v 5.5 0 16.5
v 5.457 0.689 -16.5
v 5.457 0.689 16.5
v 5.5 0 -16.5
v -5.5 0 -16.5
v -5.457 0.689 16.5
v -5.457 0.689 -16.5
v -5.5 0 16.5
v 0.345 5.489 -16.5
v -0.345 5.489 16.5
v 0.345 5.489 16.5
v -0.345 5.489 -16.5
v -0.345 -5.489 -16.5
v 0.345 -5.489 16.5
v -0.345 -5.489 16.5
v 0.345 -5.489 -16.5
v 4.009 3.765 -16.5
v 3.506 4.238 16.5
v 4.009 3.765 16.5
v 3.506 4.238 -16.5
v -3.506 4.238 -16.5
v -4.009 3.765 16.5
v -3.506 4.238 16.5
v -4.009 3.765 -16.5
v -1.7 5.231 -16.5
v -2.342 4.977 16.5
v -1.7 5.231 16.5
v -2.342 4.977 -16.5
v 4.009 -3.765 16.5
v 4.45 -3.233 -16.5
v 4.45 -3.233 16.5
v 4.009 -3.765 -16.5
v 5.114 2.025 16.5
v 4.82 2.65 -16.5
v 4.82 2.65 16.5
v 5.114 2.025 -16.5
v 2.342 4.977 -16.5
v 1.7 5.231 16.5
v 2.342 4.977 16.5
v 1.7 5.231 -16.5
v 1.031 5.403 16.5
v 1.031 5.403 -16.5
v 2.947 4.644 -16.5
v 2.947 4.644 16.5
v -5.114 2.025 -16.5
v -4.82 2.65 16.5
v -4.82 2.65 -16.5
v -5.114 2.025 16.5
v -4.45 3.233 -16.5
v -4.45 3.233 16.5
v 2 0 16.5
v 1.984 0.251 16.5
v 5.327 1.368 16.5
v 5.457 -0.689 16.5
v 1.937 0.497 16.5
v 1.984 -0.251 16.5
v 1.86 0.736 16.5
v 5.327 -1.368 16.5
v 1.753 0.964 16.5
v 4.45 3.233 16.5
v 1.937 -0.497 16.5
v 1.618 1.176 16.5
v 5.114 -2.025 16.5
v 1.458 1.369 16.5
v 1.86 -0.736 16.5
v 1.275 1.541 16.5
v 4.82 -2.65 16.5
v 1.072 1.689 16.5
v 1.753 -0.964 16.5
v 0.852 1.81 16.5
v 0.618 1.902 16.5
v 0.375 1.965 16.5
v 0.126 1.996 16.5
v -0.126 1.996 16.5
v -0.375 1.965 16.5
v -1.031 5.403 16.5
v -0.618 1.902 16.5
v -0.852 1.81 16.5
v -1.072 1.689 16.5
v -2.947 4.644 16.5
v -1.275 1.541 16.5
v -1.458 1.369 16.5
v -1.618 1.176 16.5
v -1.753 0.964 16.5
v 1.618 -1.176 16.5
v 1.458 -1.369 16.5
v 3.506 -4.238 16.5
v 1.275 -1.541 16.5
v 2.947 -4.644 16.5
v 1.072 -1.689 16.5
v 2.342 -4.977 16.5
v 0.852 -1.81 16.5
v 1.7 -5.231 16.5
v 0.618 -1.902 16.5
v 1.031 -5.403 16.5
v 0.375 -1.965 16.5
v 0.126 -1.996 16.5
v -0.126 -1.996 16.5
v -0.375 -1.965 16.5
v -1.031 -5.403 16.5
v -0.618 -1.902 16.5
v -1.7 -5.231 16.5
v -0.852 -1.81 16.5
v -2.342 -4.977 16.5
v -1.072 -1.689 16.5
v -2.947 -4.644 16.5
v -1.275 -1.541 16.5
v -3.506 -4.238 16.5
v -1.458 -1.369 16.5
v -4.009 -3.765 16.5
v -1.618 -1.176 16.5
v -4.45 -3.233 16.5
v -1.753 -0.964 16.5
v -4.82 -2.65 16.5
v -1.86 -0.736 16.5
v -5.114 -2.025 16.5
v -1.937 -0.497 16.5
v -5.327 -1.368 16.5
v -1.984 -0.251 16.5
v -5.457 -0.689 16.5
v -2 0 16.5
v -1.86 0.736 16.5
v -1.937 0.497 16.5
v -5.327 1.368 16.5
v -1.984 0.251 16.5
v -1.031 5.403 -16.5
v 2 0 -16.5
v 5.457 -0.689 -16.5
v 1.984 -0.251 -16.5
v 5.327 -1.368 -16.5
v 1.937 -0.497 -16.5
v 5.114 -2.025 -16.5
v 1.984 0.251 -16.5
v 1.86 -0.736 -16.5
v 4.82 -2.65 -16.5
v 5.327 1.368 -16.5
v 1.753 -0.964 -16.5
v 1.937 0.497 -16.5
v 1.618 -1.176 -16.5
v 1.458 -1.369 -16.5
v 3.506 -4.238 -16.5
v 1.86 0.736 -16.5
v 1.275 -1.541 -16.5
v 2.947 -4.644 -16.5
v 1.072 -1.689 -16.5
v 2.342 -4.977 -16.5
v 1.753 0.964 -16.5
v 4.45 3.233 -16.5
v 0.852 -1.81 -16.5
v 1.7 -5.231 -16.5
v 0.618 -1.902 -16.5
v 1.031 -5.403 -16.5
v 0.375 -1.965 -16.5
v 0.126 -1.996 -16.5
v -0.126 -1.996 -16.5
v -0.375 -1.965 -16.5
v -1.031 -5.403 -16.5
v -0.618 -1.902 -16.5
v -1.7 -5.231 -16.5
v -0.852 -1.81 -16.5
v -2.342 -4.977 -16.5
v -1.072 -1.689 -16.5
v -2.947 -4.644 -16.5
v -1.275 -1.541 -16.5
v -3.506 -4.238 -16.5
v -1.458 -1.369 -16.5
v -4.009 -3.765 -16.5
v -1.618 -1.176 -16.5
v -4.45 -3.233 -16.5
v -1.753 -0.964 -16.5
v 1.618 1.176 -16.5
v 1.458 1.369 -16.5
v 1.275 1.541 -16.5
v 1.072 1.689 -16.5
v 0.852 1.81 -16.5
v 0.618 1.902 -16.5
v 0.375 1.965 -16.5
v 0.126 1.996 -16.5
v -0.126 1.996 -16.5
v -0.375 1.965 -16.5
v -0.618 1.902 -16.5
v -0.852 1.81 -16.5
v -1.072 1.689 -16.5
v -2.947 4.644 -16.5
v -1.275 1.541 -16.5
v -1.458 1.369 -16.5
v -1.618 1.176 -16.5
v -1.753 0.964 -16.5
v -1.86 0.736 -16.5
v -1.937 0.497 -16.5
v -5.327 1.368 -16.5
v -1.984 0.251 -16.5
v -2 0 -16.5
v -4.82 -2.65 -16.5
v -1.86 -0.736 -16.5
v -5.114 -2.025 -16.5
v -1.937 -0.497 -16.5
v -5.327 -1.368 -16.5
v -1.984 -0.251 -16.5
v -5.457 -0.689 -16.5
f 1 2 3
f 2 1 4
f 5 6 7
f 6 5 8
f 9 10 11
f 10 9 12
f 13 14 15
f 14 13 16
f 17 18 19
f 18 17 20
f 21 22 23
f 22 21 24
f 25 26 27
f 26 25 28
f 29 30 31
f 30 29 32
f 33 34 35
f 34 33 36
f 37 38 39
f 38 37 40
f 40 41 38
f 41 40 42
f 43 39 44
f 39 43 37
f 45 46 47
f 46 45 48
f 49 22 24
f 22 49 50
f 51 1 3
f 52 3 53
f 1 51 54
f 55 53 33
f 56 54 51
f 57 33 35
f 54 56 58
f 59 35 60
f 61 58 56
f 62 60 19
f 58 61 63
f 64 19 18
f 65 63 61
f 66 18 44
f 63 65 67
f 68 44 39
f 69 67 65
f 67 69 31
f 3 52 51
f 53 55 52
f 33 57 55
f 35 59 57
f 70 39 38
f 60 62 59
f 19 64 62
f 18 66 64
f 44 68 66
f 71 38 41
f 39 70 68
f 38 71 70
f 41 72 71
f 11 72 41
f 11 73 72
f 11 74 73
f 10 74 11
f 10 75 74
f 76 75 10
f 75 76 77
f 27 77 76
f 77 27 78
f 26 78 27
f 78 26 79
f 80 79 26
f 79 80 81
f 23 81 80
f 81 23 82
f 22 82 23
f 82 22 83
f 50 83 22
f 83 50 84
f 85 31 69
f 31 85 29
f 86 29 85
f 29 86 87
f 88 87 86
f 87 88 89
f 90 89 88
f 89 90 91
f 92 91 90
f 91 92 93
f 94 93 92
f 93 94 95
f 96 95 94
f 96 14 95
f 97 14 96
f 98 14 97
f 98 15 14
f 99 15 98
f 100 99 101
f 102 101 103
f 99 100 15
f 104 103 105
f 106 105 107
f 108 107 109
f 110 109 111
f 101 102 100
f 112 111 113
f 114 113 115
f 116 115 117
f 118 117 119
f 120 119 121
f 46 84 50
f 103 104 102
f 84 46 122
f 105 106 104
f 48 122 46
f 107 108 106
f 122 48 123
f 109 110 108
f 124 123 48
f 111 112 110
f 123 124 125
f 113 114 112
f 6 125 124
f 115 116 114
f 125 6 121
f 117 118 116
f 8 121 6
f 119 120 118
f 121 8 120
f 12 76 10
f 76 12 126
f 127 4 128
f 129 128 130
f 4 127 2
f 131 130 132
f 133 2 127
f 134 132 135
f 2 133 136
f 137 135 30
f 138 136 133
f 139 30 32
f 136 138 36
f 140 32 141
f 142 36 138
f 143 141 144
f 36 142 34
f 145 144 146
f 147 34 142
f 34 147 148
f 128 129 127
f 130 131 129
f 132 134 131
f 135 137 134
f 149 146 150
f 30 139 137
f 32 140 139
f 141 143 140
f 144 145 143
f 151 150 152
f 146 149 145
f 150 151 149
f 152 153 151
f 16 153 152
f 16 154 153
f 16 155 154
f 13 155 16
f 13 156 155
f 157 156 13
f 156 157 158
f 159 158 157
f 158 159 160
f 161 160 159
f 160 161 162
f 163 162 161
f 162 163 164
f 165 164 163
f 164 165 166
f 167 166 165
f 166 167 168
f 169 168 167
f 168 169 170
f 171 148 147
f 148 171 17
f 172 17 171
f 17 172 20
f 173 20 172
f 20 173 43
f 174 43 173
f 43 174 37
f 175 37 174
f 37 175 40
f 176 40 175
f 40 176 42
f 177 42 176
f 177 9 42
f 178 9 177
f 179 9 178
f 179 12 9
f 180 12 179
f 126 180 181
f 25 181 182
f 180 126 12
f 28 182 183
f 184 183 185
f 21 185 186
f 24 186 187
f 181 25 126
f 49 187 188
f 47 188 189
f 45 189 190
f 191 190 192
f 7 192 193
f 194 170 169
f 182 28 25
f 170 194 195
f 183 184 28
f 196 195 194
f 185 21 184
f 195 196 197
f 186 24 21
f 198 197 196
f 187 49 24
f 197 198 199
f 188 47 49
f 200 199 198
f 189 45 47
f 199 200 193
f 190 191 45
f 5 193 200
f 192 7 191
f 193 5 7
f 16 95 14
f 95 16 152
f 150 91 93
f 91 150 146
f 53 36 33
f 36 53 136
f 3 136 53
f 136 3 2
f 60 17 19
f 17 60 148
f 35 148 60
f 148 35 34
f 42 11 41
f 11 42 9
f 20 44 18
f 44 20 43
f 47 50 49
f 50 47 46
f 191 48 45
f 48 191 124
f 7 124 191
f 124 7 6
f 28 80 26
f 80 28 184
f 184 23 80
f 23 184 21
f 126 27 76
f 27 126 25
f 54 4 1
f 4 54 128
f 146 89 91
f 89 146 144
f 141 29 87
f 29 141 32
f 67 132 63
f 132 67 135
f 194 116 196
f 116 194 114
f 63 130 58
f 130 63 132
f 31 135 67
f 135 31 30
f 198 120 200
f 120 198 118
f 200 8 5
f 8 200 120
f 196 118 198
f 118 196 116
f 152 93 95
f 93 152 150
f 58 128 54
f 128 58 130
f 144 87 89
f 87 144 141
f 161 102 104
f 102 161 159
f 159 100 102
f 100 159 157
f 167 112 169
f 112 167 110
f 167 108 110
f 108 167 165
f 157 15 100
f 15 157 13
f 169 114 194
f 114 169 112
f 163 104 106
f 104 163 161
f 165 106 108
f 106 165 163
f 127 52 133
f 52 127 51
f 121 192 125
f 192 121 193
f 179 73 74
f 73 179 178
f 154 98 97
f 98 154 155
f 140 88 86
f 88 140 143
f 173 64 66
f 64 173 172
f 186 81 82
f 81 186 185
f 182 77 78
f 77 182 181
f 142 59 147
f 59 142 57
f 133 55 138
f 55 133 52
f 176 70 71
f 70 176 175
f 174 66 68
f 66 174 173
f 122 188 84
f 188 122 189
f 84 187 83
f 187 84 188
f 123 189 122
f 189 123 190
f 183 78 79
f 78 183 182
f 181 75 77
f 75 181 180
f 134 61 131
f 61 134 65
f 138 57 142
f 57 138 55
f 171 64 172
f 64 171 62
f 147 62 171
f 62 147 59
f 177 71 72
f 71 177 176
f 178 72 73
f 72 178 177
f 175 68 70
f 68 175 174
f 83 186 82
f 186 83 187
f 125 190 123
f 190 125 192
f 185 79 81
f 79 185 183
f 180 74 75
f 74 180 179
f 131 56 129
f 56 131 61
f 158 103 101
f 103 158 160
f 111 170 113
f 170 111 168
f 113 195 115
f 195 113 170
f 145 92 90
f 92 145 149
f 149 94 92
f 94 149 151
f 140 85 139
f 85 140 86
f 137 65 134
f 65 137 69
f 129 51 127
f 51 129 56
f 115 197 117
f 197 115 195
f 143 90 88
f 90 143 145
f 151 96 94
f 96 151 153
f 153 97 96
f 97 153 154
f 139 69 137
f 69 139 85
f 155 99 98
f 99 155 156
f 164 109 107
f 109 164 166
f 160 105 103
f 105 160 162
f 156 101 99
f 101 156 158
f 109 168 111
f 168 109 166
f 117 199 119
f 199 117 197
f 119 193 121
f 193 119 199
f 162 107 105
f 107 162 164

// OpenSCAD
$fn = 50;


difference() {
	union() {
		translate(v = [0, 0, -16.5000000000]) {
			cylinder(h = 33, r = 5.5000000000);
		}
	}
	union() {
		translate(v = [0, 0, -100.0000000000]) {
			cylinder(h = 200, r = 2);
		}
	}
}
